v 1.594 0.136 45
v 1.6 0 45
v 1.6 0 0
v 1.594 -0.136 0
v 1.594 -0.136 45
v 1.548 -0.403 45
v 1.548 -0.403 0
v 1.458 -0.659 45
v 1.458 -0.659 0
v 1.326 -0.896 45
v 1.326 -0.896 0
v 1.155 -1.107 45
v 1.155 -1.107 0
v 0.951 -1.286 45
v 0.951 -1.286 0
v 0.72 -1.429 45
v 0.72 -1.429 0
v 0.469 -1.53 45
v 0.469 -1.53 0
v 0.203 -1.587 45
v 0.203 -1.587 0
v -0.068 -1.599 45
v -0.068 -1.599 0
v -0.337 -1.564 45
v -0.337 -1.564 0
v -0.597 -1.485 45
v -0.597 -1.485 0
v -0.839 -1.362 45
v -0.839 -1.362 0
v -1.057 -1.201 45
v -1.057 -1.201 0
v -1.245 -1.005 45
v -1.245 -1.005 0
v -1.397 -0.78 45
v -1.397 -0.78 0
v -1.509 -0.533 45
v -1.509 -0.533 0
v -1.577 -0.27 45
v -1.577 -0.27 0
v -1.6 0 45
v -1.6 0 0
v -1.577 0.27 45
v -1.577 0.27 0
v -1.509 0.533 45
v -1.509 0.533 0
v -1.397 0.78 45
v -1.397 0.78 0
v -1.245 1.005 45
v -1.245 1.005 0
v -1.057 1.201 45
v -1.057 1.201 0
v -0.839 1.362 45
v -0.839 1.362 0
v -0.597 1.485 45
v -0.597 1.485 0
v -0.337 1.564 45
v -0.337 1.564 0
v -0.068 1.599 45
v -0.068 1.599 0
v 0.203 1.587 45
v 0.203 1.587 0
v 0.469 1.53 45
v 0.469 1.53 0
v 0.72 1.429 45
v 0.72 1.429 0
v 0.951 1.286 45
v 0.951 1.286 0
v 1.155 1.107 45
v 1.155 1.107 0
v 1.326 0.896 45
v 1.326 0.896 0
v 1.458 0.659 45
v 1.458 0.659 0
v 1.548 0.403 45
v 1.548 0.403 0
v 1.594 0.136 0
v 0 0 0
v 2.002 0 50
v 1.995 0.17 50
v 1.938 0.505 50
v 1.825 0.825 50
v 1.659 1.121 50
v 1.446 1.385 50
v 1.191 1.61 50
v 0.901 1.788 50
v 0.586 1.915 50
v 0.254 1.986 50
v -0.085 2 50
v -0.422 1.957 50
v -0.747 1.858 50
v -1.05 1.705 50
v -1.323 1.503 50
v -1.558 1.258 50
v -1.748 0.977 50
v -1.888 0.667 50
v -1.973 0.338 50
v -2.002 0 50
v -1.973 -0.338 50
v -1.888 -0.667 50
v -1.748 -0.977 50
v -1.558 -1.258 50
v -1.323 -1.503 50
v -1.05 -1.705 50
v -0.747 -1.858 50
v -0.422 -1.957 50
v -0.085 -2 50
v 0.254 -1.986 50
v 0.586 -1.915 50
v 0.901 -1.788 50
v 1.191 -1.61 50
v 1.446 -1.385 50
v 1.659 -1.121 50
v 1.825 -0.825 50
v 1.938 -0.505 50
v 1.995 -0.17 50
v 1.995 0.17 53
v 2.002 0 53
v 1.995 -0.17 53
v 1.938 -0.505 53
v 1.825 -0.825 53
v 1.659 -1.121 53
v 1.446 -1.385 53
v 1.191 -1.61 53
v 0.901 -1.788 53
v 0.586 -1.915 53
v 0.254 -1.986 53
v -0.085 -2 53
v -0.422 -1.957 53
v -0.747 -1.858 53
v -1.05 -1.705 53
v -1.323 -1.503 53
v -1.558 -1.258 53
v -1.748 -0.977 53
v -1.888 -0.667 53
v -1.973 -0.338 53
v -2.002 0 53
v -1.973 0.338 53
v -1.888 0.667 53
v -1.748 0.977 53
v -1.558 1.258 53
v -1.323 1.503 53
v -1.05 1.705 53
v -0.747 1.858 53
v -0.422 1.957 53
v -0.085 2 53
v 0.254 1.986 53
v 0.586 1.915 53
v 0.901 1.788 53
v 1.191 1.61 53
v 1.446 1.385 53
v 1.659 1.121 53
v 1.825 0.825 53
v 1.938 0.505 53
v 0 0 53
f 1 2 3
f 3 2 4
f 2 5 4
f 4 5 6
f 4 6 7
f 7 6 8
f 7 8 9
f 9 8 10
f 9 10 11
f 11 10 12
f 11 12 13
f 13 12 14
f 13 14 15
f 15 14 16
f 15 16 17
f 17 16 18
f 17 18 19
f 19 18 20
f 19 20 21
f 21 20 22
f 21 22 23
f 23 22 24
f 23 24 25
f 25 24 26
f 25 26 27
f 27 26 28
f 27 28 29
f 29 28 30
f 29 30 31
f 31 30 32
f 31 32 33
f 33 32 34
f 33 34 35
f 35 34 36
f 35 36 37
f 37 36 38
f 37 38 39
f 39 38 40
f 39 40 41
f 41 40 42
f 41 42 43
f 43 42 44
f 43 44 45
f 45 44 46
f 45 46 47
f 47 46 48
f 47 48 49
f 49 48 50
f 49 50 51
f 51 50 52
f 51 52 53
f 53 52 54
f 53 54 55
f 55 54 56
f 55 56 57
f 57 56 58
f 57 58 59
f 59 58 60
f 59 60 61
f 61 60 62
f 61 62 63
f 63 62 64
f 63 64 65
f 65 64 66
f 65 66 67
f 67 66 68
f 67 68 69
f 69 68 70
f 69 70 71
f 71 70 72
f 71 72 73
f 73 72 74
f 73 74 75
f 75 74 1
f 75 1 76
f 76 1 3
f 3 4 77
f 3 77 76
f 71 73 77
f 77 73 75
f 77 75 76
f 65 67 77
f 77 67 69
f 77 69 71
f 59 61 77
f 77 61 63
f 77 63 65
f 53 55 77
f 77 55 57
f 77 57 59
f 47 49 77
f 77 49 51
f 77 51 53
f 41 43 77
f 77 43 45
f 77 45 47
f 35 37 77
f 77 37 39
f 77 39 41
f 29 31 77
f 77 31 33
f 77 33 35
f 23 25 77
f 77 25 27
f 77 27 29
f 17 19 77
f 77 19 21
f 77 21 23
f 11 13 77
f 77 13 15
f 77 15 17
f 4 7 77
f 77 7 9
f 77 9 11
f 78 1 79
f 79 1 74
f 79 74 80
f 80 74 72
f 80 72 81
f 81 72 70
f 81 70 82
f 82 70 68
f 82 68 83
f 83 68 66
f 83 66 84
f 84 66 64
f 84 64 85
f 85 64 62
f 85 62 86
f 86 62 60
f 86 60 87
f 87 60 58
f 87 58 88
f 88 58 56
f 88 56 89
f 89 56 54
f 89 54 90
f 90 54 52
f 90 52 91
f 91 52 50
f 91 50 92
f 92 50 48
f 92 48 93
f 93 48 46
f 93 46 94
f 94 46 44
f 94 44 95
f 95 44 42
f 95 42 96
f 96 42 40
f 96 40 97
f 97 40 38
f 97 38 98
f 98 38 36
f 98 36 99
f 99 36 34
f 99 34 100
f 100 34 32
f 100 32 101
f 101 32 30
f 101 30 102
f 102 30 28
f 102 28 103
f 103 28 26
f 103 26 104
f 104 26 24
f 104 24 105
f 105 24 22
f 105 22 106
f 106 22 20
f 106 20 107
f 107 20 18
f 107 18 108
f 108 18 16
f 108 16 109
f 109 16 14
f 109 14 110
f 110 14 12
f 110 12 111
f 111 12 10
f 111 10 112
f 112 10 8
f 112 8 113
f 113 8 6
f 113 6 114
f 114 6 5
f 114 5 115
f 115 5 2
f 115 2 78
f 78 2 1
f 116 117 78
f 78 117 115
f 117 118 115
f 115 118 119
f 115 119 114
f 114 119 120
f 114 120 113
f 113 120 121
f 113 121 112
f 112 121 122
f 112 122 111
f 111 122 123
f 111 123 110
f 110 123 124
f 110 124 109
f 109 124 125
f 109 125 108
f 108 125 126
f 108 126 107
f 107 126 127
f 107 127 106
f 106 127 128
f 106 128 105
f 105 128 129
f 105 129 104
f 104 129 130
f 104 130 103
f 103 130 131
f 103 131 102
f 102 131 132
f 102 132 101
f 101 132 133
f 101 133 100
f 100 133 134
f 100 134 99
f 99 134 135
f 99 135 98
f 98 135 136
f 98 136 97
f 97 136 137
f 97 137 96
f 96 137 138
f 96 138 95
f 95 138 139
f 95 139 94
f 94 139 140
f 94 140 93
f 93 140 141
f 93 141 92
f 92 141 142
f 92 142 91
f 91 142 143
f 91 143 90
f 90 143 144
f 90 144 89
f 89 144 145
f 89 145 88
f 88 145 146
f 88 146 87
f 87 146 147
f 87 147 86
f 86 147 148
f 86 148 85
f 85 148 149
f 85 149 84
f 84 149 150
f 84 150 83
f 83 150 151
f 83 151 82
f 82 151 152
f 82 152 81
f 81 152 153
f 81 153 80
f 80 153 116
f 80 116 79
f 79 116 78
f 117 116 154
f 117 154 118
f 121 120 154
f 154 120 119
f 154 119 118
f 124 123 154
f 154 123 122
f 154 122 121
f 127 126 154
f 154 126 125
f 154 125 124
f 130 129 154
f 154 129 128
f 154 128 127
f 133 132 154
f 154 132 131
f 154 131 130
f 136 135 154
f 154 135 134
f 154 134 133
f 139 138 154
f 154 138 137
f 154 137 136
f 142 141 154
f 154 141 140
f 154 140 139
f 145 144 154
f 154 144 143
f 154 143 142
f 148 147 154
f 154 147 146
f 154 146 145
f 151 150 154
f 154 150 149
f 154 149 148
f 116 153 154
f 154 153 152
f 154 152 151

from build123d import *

# Parameters (mm, degrees)
SCHIZZO1_R                   = 1.6
ESTRUSIONE_ESTRUSIONE1_DEPTH = 45
SCHIZZO2_R                   = 1.6
ESTRUSIONE_ESTRUSIONE2_DEPTH = 5
ESTRUSIONE_ESTRUSIONE2_DRAFT = -4.6
SCHIZZO3_R                   = 2.002290448
ESTRUSIONE_ESTRUSIONE3_DEPTH = 3


with BuildPart() as part:
    # Schizzo1 → Estrusione-Estrusione1 (new body)
    with BuildSketch(Plane(origin=(0, 0, 0), x_dir=(0, 1, 0), z_dir=(0, 0, 1))):
        with Locations(Location((0, 0, 0), (0, 0, 90))):
            Circle(SCHIZZO1_R)
    extrude(amount=ESTRUSIONE_ESTRUSIONE1_DEPTH)


with BuildPart() as estrusione_estrusione2_tool:
    # Schizzo2 → Estrusione-Estrusione2 (with draft: the straight prism first)
    with BuildSketch(Plane.XY.offset(45)):
        with Locations(Location((0, 0, 0), (0, 0, 180))):
            Circle(SCHIZZO2_R)
    extrude(amount=ESTRUSIONE_ESTRUSIONE2_DEPTH)
    # Estrusione-Estrusione2: the draft: its side faces are tilted about the plane it starts from
    estrusione_estrusione2_sides = [estrusione_estrusione2_tool.faces().sort_by_distance(p)[0] for p in [
        (1.6, 0, 47.5),
    ]]
    draft(estrusione_estrusione2_sides, Plane.XY.offset(45), ESTRUSIONE_ESTRUSIONE2_DRAFT)


with BuildPart() as part_1:
    add(part.part)

    # Estrusione-Estrusione2: add estrusione_estrusione2_tool
    add(estrusione_estrusione2_tool.part)

    # Schizzo3 → Estrusione-Estrusione3 (add)
    with BuildSketch(Plane.XY.offset(50)):
        Circle(SCHIZZO3_R)
    extrude(amount=ESTRUSIONE_ESTRUSIONE3_DEPTH)


solid = part_1.part
